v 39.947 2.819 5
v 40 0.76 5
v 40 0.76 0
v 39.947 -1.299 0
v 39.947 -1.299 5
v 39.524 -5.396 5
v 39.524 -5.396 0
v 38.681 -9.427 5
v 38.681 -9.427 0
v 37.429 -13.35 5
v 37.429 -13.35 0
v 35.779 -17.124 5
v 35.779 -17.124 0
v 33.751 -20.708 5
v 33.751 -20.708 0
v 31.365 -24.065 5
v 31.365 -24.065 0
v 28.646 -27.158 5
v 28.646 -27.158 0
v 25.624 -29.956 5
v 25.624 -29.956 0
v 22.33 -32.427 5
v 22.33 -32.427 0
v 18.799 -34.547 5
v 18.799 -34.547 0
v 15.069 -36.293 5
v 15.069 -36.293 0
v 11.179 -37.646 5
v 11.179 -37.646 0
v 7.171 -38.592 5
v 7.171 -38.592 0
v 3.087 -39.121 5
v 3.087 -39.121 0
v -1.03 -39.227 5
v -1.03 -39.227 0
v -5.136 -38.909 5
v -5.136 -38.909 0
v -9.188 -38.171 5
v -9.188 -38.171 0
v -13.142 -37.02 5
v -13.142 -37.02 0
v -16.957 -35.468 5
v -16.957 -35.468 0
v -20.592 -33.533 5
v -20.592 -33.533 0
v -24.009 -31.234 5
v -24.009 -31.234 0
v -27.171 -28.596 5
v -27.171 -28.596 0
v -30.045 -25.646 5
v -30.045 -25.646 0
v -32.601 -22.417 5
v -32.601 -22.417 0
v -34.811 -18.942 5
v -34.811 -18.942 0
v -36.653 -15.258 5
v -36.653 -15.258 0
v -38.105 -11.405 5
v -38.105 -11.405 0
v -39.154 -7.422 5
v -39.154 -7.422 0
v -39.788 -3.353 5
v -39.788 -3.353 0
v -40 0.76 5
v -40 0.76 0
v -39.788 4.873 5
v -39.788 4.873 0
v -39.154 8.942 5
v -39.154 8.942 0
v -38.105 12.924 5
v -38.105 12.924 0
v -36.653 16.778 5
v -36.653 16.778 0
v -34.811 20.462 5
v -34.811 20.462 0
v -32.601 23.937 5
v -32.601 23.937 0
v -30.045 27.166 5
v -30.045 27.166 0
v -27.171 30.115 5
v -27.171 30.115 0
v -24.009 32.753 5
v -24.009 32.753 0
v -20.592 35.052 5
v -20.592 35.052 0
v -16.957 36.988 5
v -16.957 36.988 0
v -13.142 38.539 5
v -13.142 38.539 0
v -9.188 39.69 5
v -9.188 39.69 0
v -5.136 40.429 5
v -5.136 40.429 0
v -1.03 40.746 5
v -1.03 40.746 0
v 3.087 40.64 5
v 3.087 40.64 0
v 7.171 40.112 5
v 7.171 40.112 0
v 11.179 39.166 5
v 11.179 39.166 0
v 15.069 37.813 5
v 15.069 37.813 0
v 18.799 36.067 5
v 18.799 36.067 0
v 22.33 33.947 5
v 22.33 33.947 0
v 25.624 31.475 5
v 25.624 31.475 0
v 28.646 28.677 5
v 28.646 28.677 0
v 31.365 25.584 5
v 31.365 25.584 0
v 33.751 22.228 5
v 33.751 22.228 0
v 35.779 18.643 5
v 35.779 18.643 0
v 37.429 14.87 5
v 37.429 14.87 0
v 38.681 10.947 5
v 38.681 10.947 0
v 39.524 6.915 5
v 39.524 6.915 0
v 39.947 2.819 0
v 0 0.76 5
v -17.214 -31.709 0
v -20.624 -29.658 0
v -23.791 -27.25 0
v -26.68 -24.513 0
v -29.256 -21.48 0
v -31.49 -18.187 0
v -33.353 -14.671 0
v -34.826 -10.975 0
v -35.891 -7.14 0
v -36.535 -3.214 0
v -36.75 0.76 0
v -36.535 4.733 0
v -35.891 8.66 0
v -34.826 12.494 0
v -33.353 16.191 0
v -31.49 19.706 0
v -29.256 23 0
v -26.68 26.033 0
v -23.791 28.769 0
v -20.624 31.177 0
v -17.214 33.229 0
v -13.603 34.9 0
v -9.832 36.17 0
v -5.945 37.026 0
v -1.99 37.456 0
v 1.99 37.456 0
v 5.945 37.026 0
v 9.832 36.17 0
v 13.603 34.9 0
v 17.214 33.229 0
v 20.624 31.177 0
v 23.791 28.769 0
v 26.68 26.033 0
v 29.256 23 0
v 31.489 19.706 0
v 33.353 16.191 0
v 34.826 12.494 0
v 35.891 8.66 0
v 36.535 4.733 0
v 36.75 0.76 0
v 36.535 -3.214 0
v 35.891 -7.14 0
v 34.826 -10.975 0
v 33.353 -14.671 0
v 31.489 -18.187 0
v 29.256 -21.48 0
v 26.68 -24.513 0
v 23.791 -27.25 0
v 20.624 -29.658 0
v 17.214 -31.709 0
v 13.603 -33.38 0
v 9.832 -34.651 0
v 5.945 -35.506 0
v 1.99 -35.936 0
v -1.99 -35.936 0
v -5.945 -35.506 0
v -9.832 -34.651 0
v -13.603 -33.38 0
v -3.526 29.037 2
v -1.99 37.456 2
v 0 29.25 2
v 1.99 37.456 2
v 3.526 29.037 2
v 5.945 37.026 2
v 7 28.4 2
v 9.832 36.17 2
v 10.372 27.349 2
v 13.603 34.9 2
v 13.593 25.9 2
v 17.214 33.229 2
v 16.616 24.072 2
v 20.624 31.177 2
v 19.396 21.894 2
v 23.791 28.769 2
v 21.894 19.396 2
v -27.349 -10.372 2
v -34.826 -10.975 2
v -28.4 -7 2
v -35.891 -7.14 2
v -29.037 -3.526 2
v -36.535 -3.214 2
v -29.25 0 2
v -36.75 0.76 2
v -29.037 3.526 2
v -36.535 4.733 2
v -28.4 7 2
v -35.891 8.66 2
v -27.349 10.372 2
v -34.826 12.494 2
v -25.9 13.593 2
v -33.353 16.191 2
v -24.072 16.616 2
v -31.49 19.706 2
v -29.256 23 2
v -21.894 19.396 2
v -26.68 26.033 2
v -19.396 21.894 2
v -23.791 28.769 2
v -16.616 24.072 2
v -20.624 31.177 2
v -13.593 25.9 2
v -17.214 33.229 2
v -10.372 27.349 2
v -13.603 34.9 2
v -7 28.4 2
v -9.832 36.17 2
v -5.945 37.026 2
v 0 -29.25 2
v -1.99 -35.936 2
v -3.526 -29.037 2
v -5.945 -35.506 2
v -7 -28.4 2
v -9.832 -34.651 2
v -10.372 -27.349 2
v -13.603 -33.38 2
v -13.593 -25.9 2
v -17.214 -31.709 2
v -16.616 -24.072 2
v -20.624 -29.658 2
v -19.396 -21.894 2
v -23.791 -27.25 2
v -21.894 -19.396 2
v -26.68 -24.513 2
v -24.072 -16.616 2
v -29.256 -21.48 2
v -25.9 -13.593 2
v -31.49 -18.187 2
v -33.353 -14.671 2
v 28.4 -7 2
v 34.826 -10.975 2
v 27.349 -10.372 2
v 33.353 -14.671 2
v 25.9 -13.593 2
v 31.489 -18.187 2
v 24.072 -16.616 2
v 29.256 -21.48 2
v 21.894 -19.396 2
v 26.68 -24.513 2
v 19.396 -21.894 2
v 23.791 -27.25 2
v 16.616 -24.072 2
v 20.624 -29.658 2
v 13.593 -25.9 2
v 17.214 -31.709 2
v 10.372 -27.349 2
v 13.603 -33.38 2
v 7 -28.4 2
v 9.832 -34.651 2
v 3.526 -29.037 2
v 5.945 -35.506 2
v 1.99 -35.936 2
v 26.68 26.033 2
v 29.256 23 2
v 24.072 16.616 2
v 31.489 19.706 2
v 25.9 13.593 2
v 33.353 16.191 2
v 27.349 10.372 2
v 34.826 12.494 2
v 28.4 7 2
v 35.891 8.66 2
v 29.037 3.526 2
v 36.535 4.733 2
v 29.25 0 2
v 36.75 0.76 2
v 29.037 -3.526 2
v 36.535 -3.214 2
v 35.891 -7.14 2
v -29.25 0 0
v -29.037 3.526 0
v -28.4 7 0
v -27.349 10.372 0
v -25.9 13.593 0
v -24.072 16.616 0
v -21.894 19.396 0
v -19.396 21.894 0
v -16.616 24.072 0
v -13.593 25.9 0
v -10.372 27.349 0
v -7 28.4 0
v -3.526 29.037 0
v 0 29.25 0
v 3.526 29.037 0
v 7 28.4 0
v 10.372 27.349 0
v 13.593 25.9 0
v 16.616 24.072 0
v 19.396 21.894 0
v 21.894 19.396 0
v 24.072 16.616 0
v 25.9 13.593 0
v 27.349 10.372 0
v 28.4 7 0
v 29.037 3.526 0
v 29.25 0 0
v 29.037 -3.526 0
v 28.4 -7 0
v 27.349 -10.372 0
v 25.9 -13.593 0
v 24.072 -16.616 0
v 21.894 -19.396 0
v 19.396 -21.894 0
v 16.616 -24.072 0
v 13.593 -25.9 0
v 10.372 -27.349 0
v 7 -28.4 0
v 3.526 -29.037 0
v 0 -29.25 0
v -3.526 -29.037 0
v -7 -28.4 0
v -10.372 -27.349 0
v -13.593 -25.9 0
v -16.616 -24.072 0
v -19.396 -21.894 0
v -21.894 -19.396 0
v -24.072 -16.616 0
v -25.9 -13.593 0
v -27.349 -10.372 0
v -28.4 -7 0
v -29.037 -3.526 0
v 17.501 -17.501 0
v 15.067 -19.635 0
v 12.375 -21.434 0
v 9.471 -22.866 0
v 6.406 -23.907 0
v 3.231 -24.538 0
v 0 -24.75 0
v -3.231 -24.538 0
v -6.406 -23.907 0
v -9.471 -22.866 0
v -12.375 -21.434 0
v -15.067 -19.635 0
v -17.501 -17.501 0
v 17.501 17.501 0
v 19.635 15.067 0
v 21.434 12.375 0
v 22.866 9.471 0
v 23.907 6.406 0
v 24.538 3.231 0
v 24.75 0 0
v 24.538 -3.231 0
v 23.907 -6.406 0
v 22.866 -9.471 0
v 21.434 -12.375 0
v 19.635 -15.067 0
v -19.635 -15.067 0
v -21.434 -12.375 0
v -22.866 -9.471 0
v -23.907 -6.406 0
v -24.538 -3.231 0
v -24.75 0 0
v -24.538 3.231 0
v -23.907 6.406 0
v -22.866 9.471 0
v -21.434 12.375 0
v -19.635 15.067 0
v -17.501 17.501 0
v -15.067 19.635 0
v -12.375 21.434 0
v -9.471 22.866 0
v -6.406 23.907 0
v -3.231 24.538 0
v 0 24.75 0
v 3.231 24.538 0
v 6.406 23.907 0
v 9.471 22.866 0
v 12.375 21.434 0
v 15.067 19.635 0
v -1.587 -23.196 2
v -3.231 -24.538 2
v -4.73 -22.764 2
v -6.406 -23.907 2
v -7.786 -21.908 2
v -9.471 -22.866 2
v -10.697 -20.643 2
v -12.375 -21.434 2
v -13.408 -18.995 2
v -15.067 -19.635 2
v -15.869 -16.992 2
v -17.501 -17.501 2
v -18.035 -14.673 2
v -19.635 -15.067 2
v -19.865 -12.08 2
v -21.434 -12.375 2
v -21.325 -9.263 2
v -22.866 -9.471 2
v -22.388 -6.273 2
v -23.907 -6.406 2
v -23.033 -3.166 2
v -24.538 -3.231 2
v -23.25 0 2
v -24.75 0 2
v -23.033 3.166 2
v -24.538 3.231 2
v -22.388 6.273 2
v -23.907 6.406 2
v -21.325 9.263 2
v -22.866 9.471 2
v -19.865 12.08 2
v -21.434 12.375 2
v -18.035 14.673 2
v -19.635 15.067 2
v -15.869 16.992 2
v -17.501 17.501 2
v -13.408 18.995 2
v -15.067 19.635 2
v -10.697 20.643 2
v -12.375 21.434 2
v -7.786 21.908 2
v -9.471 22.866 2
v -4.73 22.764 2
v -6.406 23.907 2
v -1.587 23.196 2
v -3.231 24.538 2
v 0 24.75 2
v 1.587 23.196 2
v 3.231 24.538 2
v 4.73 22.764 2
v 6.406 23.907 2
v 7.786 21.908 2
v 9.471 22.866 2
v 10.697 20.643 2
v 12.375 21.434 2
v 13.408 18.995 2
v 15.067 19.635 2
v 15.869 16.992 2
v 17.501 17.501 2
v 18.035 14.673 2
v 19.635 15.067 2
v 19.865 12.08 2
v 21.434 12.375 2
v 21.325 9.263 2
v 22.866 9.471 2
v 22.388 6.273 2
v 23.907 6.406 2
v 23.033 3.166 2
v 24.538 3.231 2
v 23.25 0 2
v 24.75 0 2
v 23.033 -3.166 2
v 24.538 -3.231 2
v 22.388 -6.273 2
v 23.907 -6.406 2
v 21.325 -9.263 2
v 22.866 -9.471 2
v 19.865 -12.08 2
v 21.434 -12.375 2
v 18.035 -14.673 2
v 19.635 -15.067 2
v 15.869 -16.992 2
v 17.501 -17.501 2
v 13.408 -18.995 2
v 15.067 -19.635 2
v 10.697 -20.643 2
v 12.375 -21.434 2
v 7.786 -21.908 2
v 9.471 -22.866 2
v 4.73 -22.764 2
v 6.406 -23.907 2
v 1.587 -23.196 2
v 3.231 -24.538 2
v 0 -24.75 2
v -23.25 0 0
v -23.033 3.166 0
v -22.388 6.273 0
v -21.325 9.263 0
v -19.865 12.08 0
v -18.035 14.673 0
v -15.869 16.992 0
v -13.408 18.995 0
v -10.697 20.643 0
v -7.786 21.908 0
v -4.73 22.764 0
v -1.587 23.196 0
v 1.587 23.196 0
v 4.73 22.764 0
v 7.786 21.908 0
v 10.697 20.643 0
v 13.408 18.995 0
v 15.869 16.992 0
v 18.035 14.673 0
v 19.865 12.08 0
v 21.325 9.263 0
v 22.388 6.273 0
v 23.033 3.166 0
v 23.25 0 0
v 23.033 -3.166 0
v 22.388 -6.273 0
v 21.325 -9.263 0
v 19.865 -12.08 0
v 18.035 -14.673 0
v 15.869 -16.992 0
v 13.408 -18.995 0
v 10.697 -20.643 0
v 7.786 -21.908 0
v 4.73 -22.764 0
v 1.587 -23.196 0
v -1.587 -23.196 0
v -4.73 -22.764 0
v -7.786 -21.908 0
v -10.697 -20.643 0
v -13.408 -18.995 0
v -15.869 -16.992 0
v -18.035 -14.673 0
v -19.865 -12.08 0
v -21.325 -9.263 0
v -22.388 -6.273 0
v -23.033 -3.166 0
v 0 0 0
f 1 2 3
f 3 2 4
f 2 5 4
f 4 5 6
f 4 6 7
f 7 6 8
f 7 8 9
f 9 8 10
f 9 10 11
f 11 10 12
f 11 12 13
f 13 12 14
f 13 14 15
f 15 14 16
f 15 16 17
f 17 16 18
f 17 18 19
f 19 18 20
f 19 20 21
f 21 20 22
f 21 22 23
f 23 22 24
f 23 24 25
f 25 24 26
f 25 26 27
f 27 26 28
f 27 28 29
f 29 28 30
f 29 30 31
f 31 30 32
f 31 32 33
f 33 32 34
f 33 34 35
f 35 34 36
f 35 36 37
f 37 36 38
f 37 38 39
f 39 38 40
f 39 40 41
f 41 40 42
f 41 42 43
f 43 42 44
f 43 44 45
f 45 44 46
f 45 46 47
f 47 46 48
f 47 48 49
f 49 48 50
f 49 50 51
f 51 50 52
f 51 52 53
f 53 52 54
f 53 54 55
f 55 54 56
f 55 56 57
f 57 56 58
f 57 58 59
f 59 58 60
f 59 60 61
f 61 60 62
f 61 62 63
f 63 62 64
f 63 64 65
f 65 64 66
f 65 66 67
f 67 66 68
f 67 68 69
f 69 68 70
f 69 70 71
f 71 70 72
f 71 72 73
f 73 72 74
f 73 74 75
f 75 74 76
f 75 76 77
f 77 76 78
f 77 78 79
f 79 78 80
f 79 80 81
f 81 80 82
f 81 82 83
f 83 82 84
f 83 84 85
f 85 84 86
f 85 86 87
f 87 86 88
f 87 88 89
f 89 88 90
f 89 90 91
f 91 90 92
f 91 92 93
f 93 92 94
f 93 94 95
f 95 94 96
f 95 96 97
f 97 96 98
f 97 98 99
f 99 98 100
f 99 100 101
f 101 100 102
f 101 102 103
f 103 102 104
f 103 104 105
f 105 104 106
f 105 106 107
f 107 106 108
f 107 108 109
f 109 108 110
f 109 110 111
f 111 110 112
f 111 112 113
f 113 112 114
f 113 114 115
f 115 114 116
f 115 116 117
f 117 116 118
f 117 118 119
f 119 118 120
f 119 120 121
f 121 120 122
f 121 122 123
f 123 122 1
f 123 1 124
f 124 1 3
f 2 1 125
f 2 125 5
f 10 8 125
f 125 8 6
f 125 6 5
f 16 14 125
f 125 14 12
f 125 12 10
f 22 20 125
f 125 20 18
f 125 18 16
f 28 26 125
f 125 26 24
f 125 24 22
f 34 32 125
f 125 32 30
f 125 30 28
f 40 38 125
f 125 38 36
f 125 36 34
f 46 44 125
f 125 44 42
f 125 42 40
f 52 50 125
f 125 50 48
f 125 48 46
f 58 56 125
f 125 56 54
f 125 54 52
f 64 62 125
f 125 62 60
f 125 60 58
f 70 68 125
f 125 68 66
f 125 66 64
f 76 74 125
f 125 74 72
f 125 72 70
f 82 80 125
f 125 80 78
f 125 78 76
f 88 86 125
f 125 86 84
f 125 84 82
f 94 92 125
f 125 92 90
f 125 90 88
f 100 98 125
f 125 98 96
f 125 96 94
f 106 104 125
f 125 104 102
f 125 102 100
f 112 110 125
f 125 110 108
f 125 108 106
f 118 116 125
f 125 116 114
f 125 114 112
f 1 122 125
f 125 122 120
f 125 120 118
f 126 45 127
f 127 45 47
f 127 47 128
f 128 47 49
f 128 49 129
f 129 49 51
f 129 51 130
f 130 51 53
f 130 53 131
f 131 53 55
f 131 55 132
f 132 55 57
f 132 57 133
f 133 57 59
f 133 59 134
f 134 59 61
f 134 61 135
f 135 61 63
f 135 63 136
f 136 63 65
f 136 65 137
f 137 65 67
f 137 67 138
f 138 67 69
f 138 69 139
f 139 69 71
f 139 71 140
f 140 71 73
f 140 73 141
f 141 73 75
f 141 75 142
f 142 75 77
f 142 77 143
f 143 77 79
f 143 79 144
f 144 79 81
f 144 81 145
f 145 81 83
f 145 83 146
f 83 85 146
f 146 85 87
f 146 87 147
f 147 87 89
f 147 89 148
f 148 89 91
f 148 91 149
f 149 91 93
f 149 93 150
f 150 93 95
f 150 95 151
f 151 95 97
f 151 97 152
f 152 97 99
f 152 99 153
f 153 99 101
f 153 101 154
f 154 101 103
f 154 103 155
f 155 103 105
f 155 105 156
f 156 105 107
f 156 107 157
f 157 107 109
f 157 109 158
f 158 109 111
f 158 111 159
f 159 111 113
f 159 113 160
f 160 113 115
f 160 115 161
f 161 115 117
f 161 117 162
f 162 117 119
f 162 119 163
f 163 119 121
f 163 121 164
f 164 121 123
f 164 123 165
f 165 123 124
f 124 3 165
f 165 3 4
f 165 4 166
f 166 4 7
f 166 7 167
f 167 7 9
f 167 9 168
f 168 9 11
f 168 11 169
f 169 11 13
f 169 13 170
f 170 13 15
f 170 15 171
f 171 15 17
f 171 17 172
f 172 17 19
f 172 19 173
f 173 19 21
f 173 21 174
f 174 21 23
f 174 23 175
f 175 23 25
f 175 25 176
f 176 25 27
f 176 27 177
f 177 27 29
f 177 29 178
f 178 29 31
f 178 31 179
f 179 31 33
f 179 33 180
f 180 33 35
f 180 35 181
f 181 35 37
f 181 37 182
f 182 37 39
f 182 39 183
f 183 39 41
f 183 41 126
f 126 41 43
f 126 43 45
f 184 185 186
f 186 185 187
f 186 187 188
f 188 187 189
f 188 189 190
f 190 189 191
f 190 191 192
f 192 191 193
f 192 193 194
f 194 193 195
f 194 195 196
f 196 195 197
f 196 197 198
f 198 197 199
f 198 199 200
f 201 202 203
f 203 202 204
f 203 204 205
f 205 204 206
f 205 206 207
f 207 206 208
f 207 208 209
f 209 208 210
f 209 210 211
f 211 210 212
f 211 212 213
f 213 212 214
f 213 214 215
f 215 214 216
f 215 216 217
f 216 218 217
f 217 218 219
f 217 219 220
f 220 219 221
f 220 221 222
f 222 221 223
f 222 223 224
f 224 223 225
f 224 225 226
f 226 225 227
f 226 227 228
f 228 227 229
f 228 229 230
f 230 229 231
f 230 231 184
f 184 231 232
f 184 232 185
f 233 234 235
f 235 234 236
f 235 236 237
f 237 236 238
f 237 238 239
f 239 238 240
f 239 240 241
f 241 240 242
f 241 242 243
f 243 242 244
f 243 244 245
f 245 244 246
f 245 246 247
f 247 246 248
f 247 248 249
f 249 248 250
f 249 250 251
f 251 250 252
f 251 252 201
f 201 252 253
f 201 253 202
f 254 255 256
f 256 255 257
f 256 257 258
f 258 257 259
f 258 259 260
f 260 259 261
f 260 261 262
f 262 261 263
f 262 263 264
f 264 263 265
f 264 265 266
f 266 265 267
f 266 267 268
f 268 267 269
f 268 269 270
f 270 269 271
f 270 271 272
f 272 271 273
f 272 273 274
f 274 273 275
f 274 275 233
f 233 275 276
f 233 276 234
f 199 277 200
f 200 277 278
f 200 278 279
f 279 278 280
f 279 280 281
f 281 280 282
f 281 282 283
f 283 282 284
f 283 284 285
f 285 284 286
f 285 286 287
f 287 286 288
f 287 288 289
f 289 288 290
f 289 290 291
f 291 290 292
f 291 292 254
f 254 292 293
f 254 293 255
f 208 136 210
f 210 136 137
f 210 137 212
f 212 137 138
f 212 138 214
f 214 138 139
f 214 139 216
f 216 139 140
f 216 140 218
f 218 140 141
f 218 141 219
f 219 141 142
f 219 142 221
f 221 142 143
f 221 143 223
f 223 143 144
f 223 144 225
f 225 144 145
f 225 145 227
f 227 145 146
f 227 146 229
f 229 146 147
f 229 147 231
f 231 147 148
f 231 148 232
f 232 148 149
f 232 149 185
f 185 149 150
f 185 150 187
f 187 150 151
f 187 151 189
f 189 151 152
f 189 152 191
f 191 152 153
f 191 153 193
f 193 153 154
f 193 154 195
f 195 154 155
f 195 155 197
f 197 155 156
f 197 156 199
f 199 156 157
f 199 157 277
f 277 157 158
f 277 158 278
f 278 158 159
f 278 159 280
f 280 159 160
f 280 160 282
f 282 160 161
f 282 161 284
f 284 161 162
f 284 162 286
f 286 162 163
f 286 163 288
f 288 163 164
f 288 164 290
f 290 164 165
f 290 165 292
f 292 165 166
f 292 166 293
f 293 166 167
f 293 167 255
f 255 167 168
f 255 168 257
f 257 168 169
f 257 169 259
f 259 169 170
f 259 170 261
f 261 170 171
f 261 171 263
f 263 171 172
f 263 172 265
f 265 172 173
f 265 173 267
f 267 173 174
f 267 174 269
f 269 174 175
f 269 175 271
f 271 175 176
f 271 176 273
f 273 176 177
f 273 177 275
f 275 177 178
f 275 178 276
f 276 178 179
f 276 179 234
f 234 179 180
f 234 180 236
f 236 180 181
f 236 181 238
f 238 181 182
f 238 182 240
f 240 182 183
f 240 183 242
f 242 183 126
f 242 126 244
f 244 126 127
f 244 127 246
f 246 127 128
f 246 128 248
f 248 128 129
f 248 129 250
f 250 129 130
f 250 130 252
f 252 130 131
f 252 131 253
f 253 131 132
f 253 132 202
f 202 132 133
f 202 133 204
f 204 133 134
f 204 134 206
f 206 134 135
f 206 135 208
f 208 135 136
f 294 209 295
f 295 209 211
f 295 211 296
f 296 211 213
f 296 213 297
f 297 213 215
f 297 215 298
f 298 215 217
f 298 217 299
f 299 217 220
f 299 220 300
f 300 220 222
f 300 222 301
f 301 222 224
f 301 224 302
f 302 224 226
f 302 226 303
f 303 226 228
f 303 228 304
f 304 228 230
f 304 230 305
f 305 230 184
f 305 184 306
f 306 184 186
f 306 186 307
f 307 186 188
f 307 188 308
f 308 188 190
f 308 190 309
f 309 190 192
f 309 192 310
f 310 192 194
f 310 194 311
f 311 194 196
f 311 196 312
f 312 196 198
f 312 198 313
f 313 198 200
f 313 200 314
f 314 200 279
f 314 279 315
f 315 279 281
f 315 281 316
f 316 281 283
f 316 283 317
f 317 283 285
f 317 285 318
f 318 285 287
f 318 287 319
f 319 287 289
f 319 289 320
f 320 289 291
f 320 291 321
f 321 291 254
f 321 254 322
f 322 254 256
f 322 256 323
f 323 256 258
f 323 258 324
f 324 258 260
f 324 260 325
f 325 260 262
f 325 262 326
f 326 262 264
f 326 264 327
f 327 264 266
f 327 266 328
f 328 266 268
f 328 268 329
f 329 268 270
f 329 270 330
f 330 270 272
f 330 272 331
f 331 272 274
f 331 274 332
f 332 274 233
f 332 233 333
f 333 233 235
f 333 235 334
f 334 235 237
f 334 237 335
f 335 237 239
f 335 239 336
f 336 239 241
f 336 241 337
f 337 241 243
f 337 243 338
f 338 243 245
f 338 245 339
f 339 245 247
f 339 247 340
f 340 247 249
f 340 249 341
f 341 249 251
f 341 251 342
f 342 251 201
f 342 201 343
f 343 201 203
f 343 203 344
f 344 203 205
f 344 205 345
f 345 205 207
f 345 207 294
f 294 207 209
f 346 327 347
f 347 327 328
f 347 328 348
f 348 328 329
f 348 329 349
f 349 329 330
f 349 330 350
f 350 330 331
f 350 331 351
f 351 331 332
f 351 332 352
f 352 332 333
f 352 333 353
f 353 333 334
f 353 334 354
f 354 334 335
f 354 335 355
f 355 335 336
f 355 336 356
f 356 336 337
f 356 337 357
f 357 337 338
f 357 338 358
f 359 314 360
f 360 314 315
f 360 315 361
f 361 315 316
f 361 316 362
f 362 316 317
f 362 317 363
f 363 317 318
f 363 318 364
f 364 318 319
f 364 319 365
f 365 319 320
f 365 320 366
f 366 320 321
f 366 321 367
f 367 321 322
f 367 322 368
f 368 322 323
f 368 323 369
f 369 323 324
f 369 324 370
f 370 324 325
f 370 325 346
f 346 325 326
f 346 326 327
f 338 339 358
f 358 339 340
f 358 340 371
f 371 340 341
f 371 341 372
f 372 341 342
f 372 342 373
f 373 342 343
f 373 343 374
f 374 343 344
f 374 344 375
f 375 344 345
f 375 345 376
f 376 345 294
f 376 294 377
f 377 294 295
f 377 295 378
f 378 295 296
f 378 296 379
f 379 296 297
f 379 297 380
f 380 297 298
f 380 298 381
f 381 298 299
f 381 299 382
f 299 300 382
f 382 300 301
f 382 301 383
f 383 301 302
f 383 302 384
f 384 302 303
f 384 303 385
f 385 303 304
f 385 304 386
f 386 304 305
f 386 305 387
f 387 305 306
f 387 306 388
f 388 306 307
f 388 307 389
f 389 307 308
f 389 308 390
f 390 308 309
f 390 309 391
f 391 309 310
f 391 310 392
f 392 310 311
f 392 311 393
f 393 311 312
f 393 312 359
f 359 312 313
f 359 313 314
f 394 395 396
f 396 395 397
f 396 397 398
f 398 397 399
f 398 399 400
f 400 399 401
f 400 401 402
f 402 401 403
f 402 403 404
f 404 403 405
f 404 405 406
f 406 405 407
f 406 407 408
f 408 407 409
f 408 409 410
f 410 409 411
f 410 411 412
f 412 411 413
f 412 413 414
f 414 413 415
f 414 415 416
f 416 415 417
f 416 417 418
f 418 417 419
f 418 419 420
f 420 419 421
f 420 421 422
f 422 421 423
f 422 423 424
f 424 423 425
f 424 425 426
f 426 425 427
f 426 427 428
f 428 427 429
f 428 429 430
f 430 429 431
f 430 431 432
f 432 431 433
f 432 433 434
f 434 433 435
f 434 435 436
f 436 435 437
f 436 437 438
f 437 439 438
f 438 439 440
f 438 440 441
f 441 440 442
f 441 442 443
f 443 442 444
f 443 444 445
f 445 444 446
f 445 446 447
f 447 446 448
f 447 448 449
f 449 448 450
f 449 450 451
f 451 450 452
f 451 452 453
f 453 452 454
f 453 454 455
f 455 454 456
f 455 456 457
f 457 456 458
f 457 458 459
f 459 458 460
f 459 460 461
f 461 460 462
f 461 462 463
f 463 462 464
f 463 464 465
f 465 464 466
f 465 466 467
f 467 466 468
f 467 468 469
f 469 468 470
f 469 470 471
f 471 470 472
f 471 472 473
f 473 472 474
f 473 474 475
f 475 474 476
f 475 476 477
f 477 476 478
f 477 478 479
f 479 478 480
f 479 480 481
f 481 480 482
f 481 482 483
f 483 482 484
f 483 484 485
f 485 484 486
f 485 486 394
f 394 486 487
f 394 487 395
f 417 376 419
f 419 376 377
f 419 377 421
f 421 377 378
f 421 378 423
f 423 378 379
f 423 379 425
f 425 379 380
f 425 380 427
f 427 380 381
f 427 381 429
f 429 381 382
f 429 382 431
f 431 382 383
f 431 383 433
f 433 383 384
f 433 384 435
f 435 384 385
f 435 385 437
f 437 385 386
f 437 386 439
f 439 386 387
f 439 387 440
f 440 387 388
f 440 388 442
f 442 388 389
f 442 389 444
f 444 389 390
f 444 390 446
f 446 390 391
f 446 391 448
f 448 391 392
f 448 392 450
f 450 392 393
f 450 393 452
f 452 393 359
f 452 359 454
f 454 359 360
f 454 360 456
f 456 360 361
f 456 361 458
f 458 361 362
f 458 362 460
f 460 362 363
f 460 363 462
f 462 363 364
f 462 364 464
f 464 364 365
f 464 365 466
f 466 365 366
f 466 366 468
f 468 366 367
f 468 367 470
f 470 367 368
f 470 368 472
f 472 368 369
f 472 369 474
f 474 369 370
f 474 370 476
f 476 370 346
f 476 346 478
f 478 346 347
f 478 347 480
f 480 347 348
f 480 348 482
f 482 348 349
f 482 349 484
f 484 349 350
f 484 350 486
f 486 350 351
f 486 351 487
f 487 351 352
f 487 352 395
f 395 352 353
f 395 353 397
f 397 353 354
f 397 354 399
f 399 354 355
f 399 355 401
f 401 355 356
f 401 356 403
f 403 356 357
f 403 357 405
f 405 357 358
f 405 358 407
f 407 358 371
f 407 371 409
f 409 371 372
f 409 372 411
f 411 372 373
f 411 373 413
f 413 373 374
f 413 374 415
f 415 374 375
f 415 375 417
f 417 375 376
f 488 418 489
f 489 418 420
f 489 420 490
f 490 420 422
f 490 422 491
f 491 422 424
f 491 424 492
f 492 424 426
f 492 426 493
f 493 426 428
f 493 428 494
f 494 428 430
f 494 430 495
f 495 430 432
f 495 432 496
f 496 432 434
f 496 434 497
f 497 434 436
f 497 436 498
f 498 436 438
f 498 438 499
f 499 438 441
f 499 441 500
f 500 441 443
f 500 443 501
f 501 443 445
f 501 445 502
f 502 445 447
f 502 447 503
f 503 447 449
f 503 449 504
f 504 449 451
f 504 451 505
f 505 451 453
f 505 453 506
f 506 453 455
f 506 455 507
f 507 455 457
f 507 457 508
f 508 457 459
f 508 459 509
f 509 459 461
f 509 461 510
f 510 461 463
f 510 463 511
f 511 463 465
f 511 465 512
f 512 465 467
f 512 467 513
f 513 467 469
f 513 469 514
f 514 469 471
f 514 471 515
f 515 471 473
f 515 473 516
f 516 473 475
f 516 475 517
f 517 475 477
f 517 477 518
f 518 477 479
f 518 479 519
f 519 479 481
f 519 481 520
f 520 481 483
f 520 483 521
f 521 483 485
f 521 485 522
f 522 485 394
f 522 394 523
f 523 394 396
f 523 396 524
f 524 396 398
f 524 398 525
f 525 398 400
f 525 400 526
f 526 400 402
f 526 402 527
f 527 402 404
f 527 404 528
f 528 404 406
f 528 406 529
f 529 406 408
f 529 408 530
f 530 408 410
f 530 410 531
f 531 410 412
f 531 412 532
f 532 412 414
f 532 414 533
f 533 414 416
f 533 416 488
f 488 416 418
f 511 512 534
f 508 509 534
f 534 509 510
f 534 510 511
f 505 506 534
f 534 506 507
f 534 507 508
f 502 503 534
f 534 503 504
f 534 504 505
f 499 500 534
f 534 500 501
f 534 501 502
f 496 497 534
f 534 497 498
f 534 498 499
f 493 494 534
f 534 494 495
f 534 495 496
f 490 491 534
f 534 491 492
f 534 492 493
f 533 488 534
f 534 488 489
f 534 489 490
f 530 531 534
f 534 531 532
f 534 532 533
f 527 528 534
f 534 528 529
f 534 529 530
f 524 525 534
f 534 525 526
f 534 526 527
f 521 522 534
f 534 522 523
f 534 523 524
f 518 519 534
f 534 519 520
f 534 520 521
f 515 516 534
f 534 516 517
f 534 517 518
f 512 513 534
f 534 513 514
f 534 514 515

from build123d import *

# Parameters (mm, degrees)
SKETCH_2_R          = 40
EXTRUDE_1_DEPTH     = 5
SKETCH_1_R          = 36.75
SKETCH_1_R_2        = 29.25
SKETCH_1_R_3        = 24.75
SKETCH_1_R_4        = 23.25
CUT_EXTRUDE_1_DEPTH = 2


with BuildPart() as part:
    # 草图2 → 凸台-拉伸1 (new body)
    with BuildSketch(Plane.XY):
        with Locations((0, 0.759664545)):
            Circle(SKETCH_2_R)
    extrude(amount=EXTRUDE_1_DEPTH)

    # 草图1 → 切除-拉伸1 (cut)
    # profile 1 of 2: a face of its own
    with BuildSketch(Plane.XY):
        with Locations((0, 0.759664545)):
            Circle(SKETCH_1_R)
        Circle(SKETCH_1_R_2, mode=Mode.SUBTRACT)
    # profile 2 of 2: a face of its own
    with BuildSketch(Plane.XY):
        Circle(SKETCH_1_R_3)
        Circle(SKETCH_1_R_4, mode=Mode.SUBTRACT)
    extrude(amount=CUT_EXTRUDE_1_DEPTH, mode=Mode.SUBTRACT)


solid = part.part
